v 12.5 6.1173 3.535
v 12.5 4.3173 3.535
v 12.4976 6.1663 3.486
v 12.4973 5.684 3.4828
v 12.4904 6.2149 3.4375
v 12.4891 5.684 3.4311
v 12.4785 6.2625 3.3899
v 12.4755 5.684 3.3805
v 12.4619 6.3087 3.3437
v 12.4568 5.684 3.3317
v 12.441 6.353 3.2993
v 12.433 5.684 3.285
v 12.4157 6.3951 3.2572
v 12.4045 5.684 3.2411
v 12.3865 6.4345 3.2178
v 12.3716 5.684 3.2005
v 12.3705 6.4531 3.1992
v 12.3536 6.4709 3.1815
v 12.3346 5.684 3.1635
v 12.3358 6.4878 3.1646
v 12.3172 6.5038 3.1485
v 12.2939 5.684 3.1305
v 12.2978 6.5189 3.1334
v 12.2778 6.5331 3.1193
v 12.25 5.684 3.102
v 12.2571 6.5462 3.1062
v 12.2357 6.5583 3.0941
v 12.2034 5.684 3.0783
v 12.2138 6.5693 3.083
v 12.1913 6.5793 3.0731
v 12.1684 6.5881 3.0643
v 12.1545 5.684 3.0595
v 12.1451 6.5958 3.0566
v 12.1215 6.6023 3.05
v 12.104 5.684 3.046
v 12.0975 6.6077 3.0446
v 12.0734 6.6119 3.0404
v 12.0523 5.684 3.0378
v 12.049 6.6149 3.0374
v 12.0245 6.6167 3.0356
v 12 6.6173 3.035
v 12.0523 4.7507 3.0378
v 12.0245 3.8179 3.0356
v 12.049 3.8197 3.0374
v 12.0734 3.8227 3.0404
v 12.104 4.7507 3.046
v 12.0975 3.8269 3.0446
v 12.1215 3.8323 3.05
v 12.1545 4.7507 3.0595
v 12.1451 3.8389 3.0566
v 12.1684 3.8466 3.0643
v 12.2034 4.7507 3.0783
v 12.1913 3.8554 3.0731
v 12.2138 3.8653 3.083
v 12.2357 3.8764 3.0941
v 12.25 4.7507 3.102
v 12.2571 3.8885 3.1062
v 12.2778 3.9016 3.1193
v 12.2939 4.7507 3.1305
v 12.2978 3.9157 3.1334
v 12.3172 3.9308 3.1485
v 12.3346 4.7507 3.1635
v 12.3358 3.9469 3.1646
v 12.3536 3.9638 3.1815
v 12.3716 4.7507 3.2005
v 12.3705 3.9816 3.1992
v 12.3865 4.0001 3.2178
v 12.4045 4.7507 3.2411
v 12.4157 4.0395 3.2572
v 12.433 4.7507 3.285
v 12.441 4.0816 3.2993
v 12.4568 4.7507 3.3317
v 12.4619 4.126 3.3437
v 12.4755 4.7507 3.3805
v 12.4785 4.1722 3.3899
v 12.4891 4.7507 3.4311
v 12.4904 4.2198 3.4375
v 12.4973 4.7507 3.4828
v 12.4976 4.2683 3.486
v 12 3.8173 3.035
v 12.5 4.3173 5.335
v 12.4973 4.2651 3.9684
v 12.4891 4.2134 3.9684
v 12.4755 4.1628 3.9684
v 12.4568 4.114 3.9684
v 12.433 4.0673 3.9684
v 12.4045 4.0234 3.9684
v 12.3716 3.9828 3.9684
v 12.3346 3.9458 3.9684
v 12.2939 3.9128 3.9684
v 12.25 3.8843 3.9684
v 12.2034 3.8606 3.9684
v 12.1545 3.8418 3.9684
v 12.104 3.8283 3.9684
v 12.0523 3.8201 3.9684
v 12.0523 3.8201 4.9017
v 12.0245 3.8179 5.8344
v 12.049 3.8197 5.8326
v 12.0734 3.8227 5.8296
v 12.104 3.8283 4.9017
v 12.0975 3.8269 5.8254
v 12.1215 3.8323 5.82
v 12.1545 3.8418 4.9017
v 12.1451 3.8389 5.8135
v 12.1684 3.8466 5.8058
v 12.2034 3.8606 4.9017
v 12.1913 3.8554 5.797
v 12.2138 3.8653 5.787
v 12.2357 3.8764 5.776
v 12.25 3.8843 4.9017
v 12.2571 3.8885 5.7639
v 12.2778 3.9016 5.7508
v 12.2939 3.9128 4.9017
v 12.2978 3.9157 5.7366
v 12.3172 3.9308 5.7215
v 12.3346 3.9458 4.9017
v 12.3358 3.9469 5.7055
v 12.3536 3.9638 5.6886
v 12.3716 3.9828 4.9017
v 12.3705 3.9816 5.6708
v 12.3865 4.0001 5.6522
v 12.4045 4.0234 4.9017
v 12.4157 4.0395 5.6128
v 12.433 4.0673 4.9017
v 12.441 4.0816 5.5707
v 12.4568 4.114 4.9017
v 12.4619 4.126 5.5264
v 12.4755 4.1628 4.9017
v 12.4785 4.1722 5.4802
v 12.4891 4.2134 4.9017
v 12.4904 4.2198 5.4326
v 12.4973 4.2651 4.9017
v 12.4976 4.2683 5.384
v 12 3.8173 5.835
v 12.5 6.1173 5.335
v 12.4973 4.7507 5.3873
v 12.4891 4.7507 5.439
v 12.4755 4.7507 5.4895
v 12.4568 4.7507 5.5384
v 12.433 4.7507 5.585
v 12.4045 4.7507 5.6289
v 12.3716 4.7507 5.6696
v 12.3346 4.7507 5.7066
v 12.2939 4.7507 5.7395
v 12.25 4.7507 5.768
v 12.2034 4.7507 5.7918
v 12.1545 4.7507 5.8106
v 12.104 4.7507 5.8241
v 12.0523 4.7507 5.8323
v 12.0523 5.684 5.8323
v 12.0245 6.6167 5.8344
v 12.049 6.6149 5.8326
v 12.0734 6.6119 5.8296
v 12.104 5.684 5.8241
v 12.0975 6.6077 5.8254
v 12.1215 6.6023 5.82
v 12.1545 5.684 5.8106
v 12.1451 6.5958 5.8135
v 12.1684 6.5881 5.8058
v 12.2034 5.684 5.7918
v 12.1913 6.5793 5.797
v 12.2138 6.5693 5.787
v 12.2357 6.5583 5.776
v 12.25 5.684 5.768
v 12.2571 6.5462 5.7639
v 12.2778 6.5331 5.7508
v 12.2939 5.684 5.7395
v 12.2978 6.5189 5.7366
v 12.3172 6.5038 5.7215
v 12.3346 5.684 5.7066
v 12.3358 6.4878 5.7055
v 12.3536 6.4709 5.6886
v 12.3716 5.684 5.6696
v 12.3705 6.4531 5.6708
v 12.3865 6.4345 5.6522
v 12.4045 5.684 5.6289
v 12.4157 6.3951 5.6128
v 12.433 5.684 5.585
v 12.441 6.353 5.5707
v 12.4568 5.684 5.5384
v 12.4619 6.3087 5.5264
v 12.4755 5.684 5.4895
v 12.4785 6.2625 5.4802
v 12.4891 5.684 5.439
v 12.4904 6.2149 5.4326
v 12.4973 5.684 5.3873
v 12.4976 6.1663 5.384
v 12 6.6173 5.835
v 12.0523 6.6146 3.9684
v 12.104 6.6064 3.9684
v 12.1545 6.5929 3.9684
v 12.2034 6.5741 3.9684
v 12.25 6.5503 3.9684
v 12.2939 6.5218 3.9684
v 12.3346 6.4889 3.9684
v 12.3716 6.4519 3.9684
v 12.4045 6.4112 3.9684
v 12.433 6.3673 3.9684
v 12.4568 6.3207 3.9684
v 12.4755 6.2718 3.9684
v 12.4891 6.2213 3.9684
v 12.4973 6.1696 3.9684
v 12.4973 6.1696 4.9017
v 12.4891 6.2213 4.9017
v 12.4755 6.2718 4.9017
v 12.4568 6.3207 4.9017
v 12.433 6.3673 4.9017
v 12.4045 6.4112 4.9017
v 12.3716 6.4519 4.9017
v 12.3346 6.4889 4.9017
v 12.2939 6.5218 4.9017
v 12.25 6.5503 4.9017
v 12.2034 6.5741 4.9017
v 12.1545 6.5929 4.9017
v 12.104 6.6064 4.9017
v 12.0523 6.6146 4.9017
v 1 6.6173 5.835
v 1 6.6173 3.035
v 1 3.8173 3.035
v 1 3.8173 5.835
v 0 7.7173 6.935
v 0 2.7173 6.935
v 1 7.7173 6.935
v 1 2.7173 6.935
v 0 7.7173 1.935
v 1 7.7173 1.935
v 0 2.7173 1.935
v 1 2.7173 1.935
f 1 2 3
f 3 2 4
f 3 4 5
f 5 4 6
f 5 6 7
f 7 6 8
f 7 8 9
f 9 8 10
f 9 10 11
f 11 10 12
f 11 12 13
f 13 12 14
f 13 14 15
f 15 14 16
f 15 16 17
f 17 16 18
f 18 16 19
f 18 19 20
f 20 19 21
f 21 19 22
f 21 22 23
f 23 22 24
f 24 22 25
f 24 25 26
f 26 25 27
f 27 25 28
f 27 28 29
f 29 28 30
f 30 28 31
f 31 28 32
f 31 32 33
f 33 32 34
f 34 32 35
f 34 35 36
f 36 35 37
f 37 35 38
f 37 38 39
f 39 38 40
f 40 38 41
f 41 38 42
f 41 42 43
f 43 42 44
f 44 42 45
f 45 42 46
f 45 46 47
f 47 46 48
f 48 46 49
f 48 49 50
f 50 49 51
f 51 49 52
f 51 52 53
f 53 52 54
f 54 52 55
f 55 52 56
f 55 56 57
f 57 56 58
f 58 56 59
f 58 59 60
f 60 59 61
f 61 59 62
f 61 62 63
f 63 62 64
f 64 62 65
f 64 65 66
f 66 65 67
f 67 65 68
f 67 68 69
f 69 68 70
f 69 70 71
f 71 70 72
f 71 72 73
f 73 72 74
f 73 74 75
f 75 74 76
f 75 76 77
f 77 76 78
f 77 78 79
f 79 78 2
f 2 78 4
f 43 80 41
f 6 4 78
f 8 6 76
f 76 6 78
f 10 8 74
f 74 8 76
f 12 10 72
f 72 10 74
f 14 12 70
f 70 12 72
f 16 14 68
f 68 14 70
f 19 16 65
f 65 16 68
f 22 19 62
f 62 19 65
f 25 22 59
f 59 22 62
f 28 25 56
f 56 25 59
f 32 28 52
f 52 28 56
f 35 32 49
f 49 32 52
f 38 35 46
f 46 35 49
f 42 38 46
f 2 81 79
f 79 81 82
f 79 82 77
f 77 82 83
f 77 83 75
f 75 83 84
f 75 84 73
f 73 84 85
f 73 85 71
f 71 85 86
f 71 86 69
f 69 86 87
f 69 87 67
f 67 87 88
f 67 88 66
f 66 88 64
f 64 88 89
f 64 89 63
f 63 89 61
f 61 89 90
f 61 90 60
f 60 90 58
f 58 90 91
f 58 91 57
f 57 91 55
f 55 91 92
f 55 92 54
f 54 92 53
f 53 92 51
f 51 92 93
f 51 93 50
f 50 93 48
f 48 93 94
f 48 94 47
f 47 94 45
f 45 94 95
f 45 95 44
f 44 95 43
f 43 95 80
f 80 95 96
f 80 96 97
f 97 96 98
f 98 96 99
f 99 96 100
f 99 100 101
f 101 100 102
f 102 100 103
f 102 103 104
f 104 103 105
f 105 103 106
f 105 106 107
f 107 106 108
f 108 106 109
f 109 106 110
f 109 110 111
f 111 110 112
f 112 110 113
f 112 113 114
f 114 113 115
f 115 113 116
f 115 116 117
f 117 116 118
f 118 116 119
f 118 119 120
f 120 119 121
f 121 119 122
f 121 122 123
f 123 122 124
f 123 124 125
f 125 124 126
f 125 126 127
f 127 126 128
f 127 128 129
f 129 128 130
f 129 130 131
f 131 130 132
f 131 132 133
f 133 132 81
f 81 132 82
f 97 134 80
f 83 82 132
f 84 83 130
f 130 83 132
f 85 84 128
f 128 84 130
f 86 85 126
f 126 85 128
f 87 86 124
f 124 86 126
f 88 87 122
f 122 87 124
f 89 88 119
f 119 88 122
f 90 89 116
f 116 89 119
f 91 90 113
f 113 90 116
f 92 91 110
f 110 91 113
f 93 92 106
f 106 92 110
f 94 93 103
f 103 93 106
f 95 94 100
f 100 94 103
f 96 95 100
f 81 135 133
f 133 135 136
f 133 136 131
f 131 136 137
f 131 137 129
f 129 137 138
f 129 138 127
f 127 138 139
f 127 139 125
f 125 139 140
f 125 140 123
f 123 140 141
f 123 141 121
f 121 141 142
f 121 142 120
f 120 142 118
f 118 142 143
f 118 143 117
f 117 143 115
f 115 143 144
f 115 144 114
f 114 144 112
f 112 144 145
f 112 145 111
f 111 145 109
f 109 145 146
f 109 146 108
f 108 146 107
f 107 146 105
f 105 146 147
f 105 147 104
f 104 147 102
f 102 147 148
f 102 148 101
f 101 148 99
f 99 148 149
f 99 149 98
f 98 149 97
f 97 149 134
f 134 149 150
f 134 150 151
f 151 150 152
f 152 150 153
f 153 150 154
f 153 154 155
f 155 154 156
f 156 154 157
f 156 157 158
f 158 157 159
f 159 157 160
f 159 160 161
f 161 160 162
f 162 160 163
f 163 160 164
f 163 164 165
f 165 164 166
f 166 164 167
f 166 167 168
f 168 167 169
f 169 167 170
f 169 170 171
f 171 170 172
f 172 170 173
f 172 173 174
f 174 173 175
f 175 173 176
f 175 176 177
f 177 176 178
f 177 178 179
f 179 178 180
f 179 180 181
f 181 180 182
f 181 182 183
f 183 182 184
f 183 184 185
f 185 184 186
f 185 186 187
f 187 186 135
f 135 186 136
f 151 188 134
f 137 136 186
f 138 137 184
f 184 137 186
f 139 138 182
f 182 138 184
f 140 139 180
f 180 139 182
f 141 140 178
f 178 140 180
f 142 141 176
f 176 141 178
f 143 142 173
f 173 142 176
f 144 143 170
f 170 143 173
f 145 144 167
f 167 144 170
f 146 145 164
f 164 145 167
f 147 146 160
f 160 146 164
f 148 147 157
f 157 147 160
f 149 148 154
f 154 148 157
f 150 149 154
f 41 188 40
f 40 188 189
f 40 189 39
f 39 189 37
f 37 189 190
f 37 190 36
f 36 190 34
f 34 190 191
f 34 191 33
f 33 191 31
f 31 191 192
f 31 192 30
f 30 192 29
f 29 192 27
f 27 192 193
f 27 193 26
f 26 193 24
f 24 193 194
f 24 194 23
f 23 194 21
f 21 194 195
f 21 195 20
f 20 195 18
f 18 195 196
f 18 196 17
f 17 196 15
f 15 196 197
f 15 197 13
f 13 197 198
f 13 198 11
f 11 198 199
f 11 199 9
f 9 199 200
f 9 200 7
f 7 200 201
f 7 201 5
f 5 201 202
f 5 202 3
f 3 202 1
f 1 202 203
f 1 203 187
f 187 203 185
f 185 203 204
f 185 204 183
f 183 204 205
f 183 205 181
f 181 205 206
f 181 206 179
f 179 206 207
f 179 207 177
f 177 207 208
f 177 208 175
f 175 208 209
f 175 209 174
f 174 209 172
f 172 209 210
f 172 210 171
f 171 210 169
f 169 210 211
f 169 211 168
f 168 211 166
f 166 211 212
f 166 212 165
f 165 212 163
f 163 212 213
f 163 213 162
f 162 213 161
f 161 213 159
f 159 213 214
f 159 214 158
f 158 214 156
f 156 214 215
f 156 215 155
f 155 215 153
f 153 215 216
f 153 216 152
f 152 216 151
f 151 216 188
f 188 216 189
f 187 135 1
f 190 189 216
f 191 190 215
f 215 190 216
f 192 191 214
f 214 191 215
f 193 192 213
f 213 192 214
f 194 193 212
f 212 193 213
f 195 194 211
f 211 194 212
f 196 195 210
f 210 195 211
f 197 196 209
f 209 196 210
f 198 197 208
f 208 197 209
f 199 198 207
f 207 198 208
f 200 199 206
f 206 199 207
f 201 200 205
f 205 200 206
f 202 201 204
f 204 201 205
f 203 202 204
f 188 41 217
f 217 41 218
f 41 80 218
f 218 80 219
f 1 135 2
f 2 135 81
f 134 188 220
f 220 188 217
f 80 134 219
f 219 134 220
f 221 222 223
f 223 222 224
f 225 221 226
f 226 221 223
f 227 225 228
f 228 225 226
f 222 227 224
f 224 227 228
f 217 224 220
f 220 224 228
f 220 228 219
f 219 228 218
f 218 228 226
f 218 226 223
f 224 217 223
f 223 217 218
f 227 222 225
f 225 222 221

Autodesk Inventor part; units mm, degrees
ref_plane "YZ Plane" through (0, 0, 0) normal (1, 0, 0) x (0, 1, 0)
ref_plane "XZ Plane" through (0, 0, 0) normal (0, 1, 0) x (-1, 0, 0)
ref_plane "XY Plane" through (0, 0, 0) normal (0, 0, 1) x (1, 0, 0)
sketch "Sketch1" plane through (0, 0, 0) normal (1, 0, 0) x (0, 1, 0)
  line L0 (7.7173, 6.935) -> (2.7173, 6.935)
  line L1 (2.7173, 6.935) -> (2.7173, 1.935)
  line L2 (2.7173, 1.935) -> (7.7173, 1.935)
  line L3 (7.7173, 1.935) -> (7.7173, 6.935)
  point P0 (0, 0)
  dimension "d0" = 5
  dimension "d1" = 5
extrude "Extrusion1" add sketch "Sketch1" along normal blind 1
sketch "Sketch2" plane through (1, 0, 0) normal (1, 0, 0) x (0, 0, -1)
  line L0 (-5.835, 6.6173) -> (-3.035, 6.6173)
  line L1 (-3.035, 6.6173) -> (-3.035, 3.8173)
  line L2 (-3.035, 3.8173) -> (-5.835, 3.8173)
  line L3 (-5.835, 3.8173) -> (-5.835, 6.6173)
  line L4 (-1.935, 7.7173) -> (-6.935, 7.7173) projected
  line L5 (-6.935, 7.7173) -> (-6.935, 2.7173) projected
  point P0 (0, 0)
  point P1 (-5.835, 5.2173)
  point P2 (-6.935, 5.2173)
  dimension "d4" = 2.8
  dimension "d5" = 2.8
  dimension "d6" = 1.1
  dimension "d7" = 1.1
extrude "Extrusion2" add sketch "Sketch2" along normal blind 11.5
fillet "Fillet1" radius 0.5 4 edges at (12.5, 5.2173, 5.835) (12.5, 6.6173, 4.435) (12.5, 5.2173, 3.035) (12.5, 3.8173, 4.435)
properties part number "Enclosure_Button"
